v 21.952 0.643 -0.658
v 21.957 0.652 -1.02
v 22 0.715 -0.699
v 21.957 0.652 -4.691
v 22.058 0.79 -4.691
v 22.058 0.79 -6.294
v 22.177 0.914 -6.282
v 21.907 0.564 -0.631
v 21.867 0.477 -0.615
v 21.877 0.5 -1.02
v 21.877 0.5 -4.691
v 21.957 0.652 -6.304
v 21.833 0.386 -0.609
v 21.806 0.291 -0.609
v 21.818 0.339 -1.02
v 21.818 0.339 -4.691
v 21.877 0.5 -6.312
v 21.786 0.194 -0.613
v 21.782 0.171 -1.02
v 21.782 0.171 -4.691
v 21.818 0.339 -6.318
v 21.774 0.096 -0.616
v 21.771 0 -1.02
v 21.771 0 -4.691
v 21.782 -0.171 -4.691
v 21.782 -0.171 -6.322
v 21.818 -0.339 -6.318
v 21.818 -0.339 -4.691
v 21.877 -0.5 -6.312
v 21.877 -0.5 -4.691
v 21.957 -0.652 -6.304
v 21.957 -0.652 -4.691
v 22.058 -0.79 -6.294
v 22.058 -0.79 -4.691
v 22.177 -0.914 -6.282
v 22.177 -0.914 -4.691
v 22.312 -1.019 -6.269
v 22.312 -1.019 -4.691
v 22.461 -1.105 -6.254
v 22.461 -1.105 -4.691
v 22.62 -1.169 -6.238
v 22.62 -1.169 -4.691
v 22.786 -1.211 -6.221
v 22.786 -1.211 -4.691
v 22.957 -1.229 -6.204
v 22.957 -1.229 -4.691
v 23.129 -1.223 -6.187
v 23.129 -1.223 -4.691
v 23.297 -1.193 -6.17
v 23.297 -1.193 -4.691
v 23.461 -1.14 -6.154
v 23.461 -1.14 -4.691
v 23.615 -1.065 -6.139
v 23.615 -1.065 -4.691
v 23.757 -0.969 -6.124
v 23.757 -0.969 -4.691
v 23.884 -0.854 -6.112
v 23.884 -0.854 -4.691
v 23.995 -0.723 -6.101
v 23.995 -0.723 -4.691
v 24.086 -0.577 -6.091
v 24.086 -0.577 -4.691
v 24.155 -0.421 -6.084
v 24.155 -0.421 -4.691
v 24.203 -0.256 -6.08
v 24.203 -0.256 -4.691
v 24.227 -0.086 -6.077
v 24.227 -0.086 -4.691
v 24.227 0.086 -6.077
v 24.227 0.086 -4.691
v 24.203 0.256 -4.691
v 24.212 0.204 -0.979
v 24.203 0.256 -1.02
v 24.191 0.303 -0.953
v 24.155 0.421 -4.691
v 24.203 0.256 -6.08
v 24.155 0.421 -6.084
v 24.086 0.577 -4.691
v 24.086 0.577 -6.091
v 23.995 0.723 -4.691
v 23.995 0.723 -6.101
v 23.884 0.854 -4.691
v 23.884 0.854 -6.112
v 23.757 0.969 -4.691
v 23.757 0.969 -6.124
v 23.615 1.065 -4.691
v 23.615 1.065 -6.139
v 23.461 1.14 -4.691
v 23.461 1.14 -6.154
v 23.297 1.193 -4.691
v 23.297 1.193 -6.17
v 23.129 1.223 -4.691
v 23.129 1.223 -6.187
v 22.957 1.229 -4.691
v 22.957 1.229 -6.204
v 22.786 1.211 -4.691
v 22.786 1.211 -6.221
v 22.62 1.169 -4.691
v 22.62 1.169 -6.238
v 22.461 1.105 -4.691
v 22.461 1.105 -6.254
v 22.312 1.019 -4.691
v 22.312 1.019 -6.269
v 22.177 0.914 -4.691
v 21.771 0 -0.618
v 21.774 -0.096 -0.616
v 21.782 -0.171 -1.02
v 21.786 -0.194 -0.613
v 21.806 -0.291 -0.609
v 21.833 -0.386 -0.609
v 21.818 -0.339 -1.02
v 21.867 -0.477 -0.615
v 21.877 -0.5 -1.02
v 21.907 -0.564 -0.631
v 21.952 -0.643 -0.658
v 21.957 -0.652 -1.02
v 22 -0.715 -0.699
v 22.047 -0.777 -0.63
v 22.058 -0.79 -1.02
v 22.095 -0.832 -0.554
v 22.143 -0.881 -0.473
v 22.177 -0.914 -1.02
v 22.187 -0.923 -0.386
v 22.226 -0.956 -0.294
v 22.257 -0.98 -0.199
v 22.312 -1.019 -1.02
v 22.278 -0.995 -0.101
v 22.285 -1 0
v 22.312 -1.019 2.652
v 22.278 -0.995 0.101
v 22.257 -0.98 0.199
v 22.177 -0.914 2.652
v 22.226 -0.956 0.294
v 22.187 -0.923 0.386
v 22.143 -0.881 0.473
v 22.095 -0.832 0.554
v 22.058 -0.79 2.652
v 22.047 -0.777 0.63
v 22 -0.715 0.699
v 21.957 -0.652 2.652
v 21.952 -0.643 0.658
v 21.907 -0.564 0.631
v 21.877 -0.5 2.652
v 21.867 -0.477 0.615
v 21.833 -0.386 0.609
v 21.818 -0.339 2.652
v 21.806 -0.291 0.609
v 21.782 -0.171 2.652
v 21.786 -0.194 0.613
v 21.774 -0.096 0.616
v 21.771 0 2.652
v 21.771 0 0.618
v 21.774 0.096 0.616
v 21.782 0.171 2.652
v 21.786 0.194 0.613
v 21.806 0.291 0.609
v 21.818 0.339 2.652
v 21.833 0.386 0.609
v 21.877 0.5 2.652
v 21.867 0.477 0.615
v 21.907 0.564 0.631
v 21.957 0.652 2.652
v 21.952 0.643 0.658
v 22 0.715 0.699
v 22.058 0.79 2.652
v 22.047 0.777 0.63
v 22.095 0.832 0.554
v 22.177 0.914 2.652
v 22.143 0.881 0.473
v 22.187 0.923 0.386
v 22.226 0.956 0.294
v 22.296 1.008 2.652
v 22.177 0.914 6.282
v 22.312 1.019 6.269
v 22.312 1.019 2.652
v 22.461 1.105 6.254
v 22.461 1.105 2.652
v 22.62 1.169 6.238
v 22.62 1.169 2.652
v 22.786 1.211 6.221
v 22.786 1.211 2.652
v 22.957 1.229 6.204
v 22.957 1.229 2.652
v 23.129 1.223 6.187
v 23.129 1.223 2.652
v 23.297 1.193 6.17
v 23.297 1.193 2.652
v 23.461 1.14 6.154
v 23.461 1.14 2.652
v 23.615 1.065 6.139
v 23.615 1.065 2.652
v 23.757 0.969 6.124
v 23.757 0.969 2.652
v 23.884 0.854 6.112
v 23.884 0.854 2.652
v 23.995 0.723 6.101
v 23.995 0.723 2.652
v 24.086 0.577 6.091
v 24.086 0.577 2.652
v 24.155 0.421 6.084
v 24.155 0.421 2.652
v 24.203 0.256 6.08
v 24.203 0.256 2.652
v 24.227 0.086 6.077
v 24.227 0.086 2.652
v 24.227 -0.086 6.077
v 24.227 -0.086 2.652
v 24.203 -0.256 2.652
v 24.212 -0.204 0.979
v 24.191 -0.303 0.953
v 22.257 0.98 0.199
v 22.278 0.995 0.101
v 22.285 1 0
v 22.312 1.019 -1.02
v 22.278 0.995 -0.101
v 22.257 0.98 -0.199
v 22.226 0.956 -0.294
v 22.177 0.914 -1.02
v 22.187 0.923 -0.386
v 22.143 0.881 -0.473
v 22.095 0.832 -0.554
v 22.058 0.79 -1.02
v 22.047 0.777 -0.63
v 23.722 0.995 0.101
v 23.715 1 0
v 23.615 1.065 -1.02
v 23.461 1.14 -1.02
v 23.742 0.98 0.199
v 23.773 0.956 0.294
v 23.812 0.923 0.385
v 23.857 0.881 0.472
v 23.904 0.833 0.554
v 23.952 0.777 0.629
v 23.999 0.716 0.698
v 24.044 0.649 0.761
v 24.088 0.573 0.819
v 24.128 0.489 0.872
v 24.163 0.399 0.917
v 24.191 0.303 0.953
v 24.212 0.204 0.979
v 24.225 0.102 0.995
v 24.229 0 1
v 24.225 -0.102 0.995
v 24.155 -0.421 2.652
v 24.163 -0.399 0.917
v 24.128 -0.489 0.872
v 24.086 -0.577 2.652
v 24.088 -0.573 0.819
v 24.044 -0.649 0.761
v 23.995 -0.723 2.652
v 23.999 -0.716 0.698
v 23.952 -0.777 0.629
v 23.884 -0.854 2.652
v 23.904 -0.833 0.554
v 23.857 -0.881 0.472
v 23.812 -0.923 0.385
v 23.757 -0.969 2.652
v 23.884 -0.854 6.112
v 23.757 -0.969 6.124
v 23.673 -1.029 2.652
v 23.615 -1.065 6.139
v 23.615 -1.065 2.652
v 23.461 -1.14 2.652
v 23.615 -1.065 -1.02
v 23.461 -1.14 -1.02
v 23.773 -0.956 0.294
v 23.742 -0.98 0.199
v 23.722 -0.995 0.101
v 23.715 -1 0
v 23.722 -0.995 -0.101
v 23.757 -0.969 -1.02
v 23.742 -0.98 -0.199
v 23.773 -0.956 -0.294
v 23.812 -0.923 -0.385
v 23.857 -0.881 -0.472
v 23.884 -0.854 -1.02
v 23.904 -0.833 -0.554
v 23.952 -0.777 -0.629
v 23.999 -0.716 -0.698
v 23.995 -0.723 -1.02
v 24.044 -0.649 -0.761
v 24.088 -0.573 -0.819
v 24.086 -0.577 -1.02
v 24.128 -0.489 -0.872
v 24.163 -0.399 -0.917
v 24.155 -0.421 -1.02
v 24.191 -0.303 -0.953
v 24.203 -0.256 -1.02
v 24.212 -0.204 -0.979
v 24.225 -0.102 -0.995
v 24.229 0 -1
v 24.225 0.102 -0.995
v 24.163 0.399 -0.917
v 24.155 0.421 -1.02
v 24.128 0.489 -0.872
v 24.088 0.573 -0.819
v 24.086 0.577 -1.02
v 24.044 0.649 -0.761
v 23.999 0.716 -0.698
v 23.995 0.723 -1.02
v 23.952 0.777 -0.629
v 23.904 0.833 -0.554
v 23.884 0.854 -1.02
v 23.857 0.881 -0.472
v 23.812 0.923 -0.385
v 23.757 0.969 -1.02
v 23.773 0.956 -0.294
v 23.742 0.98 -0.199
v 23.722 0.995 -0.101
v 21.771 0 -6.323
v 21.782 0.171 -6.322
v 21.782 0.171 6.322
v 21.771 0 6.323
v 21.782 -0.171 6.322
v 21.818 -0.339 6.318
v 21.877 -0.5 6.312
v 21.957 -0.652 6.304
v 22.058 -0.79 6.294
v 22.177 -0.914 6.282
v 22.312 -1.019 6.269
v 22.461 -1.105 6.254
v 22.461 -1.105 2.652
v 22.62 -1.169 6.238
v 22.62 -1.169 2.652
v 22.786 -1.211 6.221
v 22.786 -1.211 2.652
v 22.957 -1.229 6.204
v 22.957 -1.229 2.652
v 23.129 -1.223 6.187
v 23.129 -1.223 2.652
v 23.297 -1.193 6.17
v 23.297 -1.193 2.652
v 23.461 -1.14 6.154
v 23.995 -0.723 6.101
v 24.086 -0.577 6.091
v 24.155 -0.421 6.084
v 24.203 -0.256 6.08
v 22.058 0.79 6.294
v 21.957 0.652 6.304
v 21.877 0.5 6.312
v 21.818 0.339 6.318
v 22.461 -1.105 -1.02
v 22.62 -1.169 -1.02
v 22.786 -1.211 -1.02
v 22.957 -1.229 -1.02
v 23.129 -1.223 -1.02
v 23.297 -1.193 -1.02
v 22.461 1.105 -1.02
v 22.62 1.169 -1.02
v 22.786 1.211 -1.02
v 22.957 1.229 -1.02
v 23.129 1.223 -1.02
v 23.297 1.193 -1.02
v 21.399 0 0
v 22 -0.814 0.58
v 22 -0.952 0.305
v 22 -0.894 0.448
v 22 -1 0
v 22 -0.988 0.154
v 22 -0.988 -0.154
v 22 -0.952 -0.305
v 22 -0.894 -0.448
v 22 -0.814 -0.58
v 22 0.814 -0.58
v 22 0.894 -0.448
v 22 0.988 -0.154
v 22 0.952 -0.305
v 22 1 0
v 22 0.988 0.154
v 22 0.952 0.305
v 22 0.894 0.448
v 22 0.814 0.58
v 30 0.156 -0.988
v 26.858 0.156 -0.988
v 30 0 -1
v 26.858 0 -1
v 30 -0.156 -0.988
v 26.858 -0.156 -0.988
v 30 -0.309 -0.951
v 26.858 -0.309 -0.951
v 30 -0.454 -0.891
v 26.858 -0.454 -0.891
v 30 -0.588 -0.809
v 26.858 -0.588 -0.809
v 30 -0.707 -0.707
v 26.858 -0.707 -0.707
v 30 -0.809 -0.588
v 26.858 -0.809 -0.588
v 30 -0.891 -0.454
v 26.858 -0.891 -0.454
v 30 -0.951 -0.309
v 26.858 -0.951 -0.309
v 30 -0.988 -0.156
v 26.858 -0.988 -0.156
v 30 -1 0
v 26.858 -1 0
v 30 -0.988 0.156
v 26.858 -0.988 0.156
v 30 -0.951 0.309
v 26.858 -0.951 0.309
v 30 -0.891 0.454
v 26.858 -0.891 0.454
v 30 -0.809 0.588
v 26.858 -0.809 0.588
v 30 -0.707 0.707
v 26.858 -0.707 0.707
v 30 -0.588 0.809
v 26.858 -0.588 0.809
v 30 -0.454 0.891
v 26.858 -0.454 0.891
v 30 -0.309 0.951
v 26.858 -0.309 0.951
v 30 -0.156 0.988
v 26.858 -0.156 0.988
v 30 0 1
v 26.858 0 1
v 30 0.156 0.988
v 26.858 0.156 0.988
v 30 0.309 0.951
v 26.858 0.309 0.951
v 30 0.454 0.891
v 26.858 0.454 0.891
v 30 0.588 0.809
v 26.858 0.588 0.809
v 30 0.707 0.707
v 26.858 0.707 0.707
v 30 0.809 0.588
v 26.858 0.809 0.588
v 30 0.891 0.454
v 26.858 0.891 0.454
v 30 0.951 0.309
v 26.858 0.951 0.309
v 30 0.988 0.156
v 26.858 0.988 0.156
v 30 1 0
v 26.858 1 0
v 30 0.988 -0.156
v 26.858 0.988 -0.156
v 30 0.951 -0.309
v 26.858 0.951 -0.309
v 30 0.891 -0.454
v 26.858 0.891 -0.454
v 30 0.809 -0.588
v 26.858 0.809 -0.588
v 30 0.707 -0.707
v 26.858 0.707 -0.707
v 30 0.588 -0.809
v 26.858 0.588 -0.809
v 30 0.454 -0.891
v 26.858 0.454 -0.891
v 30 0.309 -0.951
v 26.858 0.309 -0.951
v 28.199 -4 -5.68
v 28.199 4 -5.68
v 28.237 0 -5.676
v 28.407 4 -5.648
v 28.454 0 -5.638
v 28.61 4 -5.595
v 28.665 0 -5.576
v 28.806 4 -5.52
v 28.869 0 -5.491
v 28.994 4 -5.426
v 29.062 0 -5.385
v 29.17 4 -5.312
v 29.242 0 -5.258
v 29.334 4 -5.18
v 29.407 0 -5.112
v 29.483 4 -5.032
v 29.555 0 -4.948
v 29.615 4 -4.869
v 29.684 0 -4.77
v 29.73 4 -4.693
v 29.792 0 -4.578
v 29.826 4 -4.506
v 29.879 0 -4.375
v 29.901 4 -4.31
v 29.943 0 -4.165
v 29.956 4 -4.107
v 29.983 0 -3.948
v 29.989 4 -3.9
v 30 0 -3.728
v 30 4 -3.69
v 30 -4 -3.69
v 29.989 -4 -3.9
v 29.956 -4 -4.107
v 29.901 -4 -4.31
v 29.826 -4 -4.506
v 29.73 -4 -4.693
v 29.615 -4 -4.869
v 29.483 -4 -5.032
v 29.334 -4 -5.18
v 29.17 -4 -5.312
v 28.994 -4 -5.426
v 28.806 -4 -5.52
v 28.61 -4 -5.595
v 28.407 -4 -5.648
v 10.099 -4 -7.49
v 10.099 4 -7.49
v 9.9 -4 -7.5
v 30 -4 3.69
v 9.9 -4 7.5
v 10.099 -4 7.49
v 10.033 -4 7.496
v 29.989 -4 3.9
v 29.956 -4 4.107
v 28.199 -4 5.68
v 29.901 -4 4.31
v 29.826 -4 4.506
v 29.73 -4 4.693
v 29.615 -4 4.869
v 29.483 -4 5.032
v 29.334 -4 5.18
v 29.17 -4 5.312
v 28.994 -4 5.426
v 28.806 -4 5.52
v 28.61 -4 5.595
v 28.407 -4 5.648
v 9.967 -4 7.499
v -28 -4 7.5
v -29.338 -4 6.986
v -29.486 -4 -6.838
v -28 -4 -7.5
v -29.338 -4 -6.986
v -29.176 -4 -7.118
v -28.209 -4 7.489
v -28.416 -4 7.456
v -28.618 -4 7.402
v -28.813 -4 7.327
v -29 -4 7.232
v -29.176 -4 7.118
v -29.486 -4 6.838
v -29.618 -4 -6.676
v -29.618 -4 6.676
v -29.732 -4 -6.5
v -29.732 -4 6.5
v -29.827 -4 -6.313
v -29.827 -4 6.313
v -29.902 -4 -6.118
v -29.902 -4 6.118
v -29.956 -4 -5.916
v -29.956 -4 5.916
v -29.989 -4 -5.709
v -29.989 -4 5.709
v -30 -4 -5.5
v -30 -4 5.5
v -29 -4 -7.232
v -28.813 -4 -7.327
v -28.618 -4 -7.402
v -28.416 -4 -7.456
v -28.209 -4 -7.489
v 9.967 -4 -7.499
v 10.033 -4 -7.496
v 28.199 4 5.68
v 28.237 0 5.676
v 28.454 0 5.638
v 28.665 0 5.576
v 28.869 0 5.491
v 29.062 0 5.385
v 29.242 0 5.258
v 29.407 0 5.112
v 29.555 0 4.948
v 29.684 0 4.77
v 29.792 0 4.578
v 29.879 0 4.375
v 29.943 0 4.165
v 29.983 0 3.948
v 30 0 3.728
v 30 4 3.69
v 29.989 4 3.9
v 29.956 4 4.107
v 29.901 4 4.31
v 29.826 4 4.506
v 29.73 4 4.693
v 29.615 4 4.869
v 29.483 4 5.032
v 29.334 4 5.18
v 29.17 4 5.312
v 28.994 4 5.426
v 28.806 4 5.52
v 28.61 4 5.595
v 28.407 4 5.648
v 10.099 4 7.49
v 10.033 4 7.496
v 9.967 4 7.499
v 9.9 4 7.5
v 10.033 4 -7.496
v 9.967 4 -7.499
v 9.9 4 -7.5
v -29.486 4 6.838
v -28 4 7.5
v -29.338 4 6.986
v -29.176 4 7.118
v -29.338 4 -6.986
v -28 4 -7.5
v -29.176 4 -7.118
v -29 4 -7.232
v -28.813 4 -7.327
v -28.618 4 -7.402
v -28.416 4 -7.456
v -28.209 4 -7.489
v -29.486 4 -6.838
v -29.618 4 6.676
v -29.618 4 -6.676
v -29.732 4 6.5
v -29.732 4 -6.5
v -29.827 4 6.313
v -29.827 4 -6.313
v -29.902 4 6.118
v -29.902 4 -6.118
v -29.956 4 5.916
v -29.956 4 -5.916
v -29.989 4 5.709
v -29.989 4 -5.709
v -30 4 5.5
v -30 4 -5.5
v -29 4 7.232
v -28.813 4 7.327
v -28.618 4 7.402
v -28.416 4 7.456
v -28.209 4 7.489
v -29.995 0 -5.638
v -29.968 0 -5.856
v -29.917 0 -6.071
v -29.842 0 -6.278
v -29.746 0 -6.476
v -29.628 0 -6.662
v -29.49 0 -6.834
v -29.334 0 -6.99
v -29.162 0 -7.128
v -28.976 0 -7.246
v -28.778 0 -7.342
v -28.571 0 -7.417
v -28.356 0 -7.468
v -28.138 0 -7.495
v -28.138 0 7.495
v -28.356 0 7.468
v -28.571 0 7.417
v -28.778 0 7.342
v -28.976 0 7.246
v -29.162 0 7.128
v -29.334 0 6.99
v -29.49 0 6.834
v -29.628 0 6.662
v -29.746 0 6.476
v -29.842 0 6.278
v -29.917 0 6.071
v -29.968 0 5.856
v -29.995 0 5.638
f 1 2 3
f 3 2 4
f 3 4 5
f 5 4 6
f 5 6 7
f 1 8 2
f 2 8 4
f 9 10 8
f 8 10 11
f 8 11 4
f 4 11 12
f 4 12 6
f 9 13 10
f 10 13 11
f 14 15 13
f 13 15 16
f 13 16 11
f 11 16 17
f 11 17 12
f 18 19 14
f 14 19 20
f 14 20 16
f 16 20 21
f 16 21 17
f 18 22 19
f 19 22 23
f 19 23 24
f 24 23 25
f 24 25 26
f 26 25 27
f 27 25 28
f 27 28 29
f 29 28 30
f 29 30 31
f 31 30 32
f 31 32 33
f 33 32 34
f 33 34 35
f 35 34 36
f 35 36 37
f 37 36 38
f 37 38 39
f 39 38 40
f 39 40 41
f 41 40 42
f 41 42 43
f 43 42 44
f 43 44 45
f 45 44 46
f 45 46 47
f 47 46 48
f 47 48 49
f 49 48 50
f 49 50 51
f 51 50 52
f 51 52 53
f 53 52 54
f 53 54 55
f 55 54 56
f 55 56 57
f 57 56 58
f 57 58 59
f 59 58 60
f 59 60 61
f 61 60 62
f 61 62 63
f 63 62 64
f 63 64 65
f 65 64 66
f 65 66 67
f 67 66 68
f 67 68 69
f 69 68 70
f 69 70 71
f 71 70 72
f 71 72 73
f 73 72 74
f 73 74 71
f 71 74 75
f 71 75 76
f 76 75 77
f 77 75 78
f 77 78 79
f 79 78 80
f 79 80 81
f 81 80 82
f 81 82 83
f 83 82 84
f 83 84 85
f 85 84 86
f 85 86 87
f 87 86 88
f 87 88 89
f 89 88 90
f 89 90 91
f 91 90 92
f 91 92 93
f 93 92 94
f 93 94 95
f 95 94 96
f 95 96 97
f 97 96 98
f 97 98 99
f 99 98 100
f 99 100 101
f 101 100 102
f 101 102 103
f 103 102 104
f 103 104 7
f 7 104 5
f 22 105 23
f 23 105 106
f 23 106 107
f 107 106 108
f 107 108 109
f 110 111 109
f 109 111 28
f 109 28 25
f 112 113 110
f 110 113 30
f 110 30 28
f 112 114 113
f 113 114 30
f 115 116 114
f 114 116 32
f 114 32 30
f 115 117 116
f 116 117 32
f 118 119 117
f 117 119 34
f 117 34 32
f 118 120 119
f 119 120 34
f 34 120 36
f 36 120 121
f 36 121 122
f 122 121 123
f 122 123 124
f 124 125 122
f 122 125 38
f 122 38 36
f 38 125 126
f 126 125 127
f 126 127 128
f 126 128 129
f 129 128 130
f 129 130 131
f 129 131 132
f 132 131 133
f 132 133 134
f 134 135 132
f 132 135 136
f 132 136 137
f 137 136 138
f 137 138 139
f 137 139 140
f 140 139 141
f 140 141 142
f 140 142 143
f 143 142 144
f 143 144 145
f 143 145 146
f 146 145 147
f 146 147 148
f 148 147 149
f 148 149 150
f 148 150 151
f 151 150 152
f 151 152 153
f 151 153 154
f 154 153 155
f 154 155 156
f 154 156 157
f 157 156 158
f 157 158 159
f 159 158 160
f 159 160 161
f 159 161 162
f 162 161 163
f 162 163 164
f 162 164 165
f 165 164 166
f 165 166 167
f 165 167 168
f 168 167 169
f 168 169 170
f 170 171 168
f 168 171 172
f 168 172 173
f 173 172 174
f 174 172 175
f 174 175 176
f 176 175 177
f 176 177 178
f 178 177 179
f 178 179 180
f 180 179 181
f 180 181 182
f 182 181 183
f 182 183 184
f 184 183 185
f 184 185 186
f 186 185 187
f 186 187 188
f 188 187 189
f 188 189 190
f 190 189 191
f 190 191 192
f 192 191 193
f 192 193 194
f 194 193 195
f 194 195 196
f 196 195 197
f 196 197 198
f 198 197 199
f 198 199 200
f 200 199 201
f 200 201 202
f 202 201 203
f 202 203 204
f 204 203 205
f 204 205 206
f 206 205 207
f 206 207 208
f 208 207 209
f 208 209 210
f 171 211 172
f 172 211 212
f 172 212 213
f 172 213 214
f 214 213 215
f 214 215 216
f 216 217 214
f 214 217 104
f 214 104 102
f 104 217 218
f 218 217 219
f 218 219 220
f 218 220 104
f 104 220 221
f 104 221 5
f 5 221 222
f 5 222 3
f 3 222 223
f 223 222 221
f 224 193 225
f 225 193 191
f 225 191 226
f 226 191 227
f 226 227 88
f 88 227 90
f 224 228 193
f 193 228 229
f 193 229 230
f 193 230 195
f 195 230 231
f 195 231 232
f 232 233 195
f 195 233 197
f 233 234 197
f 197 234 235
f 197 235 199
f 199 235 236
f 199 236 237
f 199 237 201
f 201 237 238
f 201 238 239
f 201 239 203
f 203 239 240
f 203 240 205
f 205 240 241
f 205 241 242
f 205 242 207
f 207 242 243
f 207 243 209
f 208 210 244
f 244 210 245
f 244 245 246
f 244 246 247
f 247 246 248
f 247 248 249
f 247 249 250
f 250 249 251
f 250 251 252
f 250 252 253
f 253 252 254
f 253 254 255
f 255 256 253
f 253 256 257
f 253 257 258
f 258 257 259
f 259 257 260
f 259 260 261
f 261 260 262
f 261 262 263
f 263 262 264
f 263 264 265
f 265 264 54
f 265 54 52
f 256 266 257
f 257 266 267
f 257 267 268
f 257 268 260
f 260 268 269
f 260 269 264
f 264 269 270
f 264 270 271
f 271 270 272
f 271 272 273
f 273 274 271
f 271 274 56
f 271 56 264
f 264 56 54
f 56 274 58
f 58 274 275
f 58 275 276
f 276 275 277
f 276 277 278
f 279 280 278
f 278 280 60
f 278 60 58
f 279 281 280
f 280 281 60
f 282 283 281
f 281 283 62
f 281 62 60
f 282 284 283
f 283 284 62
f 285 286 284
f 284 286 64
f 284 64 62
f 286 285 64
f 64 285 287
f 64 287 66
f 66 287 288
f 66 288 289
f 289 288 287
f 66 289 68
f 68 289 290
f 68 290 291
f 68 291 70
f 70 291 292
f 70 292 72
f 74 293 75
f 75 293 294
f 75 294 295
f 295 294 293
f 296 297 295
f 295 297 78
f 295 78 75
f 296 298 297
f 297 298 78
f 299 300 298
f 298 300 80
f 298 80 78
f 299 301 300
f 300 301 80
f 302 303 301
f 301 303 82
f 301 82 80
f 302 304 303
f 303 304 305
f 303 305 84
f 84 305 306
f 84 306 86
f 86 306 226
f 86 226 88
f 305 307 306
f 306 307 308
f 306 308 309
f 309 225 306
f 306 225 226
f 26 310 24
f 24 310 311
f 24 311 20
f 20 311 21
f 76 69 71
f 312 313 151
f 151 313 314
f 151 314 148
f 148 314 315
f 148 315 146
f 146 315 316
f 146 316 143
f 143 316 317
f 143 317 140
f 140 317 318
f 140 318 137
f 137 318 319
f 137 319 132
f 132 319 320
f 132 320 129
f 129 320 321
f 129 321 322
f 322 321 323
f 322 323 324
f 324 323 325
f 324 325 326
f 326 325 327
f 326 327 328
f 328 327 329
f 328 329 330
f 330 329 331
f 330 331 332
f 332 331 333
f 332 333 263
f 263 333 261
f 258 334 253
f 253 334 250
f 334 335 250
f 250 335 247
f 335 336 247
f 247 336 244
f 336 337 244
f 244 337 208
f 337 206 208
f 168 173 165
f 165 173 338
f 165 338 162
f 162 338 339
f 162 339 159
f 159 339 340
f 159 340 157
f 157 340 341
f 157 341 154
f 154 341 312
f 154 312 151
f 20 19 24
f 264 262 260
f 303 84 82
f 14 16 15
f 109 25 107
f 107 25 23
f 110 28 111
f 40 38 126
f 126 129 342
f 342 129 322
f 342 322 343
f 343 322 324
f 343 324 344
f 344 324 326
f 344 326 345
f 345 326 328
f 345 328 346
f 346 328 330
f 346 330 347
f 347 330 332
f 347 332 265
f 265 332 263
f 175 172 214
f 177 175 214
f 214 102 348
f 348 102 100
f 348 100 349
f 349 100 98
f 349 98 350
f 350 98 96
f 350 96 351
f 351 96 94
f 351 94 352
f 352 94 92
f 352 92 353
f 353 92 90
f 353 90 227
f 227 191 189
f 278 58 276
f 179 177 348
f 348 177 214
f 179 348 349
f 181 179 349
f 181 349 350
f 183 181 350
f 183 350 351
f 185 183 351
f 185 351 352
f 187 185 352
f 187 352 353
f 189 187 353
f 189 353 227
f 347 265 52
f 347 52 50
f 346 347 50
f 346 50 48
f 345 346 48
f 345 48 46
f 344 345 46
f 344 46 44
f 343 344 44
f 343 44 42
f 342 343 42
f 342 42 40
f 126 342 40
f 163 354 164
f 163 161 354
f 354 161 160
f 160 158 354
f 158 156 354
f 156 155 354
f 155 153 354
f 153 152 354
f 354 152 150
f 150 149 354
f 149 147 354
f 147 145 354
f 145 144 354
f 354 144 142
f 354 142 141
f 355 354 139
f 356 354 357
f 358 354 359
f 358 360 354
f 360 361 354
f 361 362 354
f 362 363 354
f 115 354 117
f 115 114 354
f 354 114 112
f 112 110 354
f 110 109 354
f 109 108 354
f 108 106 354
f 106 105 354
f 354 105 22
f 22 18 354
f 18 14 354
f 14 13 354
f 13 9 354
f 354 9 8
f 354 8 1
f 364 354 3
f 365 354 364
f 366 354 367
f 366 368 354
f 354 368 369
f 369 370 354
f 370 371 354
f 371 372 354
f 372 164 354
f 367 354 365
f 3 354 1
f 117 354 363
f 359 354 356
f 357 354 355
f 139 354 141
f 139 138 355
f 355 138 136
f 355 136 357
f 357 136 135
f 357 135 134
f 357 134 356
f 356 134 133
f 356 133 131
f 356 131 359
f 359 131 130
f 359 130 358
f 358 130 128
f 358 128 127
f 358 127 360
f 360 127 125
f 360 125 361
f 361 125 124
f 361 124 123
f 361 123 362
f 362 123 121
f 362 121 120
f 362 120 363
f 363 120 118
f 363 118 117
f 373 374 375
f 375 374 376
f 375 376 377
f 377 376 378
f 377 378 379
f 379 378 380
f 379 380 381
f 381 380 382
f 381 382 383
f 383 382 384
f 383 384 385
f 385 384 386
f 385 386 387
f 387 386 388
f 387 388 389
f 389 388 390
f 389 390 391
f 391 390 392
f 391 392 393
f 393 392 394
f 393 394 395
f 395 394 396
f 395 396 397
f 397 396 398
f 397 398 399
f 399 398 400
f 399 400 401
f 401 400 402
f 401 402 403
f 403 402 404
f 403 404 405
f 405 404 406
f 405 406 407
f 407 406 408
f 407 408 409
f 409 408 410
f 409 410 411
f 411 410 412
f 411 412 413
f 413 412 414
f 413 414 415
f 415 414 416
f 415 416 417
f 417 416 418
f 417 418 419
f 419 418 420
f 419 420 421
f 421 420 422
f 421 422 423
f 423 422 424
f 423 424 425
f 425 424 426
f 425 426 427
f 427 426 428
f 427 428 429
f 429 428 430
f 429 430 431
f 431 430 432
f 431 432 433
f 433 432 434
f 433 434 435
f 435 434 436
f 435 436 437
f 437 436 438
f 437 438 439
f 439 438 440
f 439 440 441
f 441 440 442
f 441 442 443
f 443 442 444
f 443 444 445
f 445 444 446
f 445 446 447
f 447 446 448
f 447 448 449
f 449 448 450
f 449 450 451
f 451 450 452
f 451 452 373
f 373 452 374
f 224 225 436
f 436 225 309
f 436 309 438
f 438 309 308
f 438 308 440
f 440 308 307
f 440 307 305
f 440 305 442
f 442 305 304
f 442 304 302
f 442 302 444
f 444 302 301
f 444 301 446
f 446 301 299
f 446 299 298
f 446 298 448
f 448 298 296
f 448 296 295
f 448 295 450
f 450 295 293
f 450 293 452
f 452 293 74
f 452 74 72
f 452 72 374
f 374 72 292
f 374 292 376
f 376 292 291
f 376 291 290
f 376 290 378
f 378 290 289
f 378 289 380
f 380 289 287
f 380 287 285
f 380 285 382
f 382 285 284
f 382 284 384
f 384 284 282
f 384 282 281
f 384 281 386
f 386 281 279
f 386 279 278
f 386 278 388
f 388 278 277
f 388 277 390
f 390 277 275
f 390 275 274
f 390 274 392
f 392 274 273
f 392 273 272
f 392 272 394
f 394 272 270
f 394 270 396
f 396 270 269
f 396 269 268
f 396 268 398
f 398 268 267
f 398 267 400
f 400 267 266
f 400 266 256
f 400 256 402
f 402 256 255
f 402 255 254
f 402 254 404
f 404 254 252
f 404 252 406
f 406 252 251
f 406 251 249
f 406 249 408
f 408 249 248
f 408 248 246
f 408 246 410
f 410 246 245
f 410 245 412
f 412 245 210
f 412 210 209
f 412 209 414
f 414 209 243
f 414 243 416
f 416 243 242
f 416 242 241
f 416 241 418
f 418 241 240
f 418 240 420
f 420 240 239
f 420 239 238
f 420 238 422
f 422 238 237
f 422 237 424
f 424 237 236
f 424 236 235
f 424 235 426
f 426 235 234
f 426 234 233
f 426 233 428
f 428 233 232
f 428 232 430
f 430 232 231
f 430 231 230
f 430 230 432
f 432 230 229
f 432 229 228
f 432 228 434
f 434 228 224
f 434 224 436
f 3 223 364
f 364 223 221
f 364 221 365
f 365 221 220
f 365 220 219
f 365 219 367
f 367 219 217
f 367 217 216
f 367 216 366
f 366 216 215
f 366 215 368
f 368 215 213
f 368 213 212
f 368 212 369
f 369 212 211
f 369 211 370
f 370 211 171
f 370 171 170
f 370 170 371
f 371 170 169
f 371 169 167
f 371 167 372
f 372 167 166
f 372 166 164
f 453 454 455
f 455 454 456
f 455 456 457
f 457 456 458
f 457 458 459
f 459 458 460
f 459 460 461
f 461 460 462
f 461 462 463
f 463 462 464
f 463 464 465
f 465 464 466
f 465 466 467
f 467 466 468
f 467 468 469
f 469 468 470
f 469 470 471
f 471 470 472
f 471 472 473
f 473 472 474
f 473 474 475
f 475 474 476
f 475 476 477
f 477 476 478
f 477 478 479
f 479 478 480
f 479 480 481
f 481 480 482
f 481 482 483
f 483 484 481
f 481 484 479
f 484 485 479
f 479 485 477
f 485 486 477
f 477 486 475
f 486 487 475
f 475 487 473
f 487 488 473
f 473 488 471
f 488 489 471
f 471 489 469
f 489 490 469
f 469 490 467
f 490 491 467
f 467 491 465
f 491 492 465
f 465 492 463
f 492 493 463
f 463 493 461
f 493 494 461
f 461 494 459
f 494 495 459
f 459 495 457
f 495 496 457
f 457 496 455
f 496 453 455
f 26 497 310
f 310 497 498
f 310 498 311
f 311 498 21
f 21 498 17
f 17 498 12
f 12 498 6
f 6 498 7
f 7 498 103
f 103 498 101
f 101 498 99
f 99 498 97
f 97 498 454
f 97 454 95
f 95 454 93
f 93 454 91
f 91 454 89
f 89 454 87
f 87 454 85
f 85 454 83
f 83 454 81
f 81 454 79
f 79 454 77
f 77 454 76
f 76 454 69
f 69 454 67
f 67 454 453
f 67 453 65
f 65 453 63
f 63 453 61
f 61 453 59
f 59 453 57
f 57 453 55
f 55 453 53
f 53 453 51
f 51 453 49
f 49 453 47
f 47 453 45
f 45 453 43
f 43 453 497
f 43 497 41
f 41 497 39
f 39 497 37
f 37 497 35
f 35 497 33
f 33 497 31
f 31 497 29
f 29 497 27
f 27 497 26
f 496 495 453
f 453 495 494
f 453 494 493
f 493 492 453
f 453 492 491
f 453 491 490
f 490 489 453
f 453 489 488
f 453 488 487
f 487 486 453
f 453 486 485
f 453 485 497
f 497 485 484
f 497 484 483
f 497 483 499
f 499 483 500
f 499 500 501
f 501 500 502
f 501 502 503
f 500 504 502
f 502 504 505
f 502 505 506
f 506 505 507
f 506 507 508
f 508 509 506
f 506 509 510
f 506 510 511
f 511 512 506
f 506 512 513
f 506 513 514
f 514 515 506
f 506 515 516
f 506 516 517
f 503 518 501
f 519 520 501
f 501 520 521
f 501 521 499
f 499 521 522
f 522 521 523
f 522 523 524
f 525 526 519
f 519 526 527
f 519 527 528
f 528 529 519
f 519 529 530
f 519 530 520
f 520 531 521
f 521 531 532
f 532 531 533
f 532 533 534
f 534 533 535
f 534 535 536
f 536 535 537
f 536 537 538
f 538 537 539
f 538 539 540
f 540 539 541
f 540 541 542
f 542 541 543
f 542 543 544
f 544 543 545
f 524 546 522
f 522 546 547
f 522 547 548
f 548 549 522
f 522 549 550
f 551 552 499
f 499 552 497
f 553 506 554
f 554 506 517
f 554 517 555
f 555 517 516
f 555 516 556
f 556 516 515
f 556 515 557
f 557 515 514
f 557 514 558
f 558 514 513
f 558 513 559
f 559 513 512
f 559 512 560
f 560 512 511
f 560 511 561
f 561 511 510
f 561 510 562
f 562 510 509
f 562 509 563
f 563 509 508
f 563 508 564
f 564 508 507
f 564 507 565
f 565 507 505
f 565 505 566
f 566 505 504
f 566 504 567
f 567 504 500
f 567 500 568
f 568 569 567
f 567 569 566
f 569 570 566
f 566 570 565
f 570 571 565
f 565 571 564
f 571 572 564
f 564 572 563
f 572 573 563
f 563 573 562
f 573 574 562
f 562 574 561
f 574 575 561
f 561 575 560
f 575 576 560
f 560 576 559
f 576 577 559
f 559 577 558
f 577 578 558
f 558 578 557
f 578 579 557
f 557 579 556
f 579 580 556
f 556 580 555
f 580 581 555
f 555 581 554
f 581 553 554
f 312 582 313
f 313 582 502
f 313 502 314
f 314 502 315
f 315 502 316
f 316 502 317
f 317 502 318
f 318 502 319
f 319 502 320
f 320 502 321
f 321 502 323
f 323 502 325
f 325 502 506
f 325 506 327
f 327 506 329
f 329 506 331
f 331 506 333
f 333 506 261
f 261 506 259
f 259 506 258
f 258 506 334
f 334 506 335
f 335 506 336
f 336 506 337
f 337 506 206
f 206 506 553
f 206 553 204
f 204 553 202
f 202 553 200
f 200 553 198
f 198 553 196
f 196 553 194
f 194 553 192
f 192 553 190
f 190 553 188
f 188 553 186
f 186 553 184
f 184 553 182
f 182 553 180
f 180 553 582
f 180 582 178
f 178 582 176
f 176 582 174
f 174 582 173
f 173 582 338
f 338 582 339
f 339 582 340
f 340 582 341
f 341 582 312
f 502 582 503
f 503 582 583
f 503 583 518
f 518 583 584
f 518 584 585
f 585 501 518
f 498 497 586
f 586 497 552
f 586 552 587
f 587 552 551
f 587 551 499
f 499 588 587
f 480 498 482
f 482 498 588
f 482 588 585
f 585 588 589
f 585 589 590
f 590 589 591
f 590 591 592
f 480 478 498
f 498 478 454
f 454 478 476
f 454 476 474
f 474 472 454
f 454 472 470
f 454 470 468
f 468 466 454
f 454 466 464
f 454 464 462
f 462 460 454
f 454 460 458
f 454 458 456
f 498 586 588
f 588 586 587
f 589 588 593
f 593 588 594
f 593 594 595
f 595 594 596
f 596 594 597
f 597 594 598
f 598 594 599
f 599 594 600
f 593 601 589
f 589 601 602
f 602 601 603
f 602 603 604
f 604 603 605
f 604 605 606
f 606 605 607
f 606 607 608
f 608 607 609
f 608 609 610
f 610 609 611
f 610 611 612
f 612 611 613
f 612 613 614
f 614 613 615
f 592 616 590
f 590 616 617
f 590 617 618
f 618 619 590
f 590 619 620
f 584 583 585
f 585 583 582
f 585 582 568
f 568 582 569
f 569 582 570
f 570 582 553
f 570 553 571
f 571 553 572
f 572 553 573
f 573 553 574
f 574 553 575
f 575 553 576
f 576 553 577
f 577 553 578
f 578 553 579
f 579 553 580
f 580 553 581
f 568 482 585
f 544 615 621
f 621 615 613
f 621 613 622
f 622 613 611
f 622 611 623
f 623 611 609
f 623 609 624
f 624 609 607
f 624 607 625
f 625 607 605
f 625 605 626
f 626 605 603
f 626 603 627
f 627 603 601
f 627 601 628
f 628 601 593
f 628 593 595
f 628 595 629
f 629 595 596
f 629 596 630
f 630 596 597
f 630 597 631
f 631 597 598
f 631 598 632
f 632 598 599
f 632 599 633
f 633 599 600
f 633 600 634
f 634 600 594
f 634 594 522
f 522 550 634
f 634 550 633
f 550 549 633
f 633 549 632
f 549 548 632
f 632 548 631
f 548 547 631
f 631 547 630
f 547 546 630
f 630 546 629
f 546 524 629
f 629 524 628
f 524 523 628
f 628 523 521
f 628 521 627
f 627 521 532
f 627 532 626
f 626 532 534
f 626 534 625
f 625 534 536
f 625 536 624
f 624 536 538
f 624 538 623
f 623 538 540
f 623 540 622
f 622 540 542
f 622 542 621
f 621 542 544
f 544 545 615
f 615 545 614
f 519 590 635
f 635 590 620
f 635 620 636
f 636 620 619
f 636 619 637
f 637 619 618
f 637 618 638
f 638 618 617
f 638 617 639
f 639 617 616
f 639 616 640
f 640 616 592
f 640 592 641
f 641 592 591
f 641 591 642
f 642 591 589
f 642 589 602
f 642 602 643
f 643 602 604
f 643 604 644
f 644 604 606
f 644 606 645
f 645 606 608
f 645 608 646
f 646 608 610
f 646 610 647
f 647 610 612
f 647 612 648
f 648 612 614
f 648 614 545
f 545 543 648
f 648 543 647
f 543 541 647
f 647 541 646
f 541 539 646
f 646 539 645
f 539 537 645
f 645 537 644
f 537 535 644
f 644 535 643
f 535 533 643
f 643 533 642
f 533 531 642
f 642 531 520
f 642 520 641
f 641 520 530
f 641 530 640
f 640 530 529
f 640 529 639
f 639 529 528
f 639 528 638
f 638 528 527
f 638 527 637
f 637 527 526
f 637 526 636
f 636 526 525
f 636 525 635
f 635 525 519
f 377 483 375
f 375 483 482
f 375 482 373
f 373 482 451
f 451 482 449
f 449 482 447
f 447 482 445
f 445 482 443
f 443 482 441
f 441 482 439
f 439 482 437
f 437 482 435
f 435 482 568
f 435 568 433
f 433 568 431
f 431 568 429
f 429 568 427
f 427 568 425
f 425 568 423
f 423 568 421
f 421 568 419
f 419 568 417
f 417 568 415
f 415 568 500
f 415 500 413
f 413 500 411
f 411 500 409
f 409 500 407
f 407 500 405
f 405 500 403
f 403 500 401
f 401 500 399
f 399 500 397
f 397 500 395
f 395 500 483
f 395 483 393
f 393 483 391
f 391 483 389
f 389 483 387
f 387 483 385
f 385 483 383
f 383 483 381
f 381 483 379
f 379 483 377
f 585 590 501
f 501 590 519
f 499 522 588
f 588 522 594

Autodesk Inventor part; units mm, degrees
ref_plane "YZ Plane" through (0, 0, 0) normal (1, 0, 0) x (0, 1, 0)
ref_plane "XZ Plane" through (0, 0, 0) normal (0, 1, 0) x (-1, 0, 0)
ref_plane "XY Plane" through (0, 0, 0) normal (0, 0, 1) x (1, 0, 0)
sketch "Sketch1" plane through (0, 0, 0) normal (0, 1, 0) x (-1, 0, 0)
  line L0 (-30, -7.5) -> (30, -7.5)
  line L1 (30, -7.5) -> (30, 7.5)
  line L2 (30, 7.5) -> (-30, 7.5)
  line L3 (-30, 7.5) -> (-30, -7.5)
  line L4 (-30, -7.5) -> (30, 7.5) construction
  line L5 (30, -7.5) -> (-30, 7.5) construction
  point P0 (0, 0)
  dimension "d0" = 15
  dimension "d1" = 60
extrude "Extrusion1" add sketch "Sketch1" along normal mid plane 8
sketch "Sketch2" plane through (0, 4, 0) normal (0, 1, 0) x (1, 0, 0)
  line L0 (30, 7.5) -> (-30, 7.5) projected
  line L1 (-30, 7.5) -> (-30, -7.5) projected
  line L2 (-30, -7.5) -> (30, -7.5) projected
  line L3 (30, -7.5) -> (30, 7.5) projected
  line L4 (-30, -7.5) -> (30, -7.5) projected
  line L5 (10, -7.5) -> (30, -5.5)
  line L6 (30, -7.5) -> (30, 7.5) projected
  point P0 (0, 0)
  dimension "d4" = 20
  dimension "d5" = 2
extrude "Extrusion2" cut sketch "Sketch2" against normal through all contours L3 L2 L5
mirror "Mirror1" about plane through (0, 0, 0) normal (0, 0, 1) of "Extrusion2"
fillet "Fillet1" radius 2 6 edges at (-30, 0, 7.5) (-30, 0, -7.5) (10, 0, -7.5) (10, 0, 7.5) (30, 0, 5.5) (30, 0, -5.5)
sketch "Sketch3" plane through (30, -4, 3.69) normal (1, 0, 0) x (0, 0, -1)
  line L0 (7.38, 8) -> (7.38, 0) projected
  line L1 (0, 8) -> (7.38, 8) projected
  line L2 (0, 0) -> (0, 8) projected
  line L3 (7.38, 0) -> (0, 0) projected
  line L4 (7.38, 8) -> (0, 8)
  line L5 (0, 8) -> (0, 0)
  line L6 (0, 0) -> (7.38, 0)
  line L7 (7.38, 0) -> (7.38, 8)
  line L8 (7.38, 8) -> (0, 0) construction
  line L9 (0, 8) -> (7.38, 0) construction
  point P0 (3.69, 4)
  point P1 (3.69, 4)
hole "Hole1" at (30, 0, 0) direction (-1, 0, 0) diameter 2 depth 8 tip angle 118
sketch "Sketch4" plane through (-28, -4, 7.5) normal (0, 0, 1) x (1, 0, 0)
  line L0 (58, 0) -> (58, 8) projected
  point P0 (28, 4)
  point P1 (51, 4)
  point P2 (58, 4)
  dimension "d16" = 7
hole "Hole2" at (23, 0, 7.5) direction (0, 0, -1) diameter 2.459 end through all thread size "M3x0.5" class "6H" standard "ANSI Metric M Profile"
properties part number "Switch_Extend"
